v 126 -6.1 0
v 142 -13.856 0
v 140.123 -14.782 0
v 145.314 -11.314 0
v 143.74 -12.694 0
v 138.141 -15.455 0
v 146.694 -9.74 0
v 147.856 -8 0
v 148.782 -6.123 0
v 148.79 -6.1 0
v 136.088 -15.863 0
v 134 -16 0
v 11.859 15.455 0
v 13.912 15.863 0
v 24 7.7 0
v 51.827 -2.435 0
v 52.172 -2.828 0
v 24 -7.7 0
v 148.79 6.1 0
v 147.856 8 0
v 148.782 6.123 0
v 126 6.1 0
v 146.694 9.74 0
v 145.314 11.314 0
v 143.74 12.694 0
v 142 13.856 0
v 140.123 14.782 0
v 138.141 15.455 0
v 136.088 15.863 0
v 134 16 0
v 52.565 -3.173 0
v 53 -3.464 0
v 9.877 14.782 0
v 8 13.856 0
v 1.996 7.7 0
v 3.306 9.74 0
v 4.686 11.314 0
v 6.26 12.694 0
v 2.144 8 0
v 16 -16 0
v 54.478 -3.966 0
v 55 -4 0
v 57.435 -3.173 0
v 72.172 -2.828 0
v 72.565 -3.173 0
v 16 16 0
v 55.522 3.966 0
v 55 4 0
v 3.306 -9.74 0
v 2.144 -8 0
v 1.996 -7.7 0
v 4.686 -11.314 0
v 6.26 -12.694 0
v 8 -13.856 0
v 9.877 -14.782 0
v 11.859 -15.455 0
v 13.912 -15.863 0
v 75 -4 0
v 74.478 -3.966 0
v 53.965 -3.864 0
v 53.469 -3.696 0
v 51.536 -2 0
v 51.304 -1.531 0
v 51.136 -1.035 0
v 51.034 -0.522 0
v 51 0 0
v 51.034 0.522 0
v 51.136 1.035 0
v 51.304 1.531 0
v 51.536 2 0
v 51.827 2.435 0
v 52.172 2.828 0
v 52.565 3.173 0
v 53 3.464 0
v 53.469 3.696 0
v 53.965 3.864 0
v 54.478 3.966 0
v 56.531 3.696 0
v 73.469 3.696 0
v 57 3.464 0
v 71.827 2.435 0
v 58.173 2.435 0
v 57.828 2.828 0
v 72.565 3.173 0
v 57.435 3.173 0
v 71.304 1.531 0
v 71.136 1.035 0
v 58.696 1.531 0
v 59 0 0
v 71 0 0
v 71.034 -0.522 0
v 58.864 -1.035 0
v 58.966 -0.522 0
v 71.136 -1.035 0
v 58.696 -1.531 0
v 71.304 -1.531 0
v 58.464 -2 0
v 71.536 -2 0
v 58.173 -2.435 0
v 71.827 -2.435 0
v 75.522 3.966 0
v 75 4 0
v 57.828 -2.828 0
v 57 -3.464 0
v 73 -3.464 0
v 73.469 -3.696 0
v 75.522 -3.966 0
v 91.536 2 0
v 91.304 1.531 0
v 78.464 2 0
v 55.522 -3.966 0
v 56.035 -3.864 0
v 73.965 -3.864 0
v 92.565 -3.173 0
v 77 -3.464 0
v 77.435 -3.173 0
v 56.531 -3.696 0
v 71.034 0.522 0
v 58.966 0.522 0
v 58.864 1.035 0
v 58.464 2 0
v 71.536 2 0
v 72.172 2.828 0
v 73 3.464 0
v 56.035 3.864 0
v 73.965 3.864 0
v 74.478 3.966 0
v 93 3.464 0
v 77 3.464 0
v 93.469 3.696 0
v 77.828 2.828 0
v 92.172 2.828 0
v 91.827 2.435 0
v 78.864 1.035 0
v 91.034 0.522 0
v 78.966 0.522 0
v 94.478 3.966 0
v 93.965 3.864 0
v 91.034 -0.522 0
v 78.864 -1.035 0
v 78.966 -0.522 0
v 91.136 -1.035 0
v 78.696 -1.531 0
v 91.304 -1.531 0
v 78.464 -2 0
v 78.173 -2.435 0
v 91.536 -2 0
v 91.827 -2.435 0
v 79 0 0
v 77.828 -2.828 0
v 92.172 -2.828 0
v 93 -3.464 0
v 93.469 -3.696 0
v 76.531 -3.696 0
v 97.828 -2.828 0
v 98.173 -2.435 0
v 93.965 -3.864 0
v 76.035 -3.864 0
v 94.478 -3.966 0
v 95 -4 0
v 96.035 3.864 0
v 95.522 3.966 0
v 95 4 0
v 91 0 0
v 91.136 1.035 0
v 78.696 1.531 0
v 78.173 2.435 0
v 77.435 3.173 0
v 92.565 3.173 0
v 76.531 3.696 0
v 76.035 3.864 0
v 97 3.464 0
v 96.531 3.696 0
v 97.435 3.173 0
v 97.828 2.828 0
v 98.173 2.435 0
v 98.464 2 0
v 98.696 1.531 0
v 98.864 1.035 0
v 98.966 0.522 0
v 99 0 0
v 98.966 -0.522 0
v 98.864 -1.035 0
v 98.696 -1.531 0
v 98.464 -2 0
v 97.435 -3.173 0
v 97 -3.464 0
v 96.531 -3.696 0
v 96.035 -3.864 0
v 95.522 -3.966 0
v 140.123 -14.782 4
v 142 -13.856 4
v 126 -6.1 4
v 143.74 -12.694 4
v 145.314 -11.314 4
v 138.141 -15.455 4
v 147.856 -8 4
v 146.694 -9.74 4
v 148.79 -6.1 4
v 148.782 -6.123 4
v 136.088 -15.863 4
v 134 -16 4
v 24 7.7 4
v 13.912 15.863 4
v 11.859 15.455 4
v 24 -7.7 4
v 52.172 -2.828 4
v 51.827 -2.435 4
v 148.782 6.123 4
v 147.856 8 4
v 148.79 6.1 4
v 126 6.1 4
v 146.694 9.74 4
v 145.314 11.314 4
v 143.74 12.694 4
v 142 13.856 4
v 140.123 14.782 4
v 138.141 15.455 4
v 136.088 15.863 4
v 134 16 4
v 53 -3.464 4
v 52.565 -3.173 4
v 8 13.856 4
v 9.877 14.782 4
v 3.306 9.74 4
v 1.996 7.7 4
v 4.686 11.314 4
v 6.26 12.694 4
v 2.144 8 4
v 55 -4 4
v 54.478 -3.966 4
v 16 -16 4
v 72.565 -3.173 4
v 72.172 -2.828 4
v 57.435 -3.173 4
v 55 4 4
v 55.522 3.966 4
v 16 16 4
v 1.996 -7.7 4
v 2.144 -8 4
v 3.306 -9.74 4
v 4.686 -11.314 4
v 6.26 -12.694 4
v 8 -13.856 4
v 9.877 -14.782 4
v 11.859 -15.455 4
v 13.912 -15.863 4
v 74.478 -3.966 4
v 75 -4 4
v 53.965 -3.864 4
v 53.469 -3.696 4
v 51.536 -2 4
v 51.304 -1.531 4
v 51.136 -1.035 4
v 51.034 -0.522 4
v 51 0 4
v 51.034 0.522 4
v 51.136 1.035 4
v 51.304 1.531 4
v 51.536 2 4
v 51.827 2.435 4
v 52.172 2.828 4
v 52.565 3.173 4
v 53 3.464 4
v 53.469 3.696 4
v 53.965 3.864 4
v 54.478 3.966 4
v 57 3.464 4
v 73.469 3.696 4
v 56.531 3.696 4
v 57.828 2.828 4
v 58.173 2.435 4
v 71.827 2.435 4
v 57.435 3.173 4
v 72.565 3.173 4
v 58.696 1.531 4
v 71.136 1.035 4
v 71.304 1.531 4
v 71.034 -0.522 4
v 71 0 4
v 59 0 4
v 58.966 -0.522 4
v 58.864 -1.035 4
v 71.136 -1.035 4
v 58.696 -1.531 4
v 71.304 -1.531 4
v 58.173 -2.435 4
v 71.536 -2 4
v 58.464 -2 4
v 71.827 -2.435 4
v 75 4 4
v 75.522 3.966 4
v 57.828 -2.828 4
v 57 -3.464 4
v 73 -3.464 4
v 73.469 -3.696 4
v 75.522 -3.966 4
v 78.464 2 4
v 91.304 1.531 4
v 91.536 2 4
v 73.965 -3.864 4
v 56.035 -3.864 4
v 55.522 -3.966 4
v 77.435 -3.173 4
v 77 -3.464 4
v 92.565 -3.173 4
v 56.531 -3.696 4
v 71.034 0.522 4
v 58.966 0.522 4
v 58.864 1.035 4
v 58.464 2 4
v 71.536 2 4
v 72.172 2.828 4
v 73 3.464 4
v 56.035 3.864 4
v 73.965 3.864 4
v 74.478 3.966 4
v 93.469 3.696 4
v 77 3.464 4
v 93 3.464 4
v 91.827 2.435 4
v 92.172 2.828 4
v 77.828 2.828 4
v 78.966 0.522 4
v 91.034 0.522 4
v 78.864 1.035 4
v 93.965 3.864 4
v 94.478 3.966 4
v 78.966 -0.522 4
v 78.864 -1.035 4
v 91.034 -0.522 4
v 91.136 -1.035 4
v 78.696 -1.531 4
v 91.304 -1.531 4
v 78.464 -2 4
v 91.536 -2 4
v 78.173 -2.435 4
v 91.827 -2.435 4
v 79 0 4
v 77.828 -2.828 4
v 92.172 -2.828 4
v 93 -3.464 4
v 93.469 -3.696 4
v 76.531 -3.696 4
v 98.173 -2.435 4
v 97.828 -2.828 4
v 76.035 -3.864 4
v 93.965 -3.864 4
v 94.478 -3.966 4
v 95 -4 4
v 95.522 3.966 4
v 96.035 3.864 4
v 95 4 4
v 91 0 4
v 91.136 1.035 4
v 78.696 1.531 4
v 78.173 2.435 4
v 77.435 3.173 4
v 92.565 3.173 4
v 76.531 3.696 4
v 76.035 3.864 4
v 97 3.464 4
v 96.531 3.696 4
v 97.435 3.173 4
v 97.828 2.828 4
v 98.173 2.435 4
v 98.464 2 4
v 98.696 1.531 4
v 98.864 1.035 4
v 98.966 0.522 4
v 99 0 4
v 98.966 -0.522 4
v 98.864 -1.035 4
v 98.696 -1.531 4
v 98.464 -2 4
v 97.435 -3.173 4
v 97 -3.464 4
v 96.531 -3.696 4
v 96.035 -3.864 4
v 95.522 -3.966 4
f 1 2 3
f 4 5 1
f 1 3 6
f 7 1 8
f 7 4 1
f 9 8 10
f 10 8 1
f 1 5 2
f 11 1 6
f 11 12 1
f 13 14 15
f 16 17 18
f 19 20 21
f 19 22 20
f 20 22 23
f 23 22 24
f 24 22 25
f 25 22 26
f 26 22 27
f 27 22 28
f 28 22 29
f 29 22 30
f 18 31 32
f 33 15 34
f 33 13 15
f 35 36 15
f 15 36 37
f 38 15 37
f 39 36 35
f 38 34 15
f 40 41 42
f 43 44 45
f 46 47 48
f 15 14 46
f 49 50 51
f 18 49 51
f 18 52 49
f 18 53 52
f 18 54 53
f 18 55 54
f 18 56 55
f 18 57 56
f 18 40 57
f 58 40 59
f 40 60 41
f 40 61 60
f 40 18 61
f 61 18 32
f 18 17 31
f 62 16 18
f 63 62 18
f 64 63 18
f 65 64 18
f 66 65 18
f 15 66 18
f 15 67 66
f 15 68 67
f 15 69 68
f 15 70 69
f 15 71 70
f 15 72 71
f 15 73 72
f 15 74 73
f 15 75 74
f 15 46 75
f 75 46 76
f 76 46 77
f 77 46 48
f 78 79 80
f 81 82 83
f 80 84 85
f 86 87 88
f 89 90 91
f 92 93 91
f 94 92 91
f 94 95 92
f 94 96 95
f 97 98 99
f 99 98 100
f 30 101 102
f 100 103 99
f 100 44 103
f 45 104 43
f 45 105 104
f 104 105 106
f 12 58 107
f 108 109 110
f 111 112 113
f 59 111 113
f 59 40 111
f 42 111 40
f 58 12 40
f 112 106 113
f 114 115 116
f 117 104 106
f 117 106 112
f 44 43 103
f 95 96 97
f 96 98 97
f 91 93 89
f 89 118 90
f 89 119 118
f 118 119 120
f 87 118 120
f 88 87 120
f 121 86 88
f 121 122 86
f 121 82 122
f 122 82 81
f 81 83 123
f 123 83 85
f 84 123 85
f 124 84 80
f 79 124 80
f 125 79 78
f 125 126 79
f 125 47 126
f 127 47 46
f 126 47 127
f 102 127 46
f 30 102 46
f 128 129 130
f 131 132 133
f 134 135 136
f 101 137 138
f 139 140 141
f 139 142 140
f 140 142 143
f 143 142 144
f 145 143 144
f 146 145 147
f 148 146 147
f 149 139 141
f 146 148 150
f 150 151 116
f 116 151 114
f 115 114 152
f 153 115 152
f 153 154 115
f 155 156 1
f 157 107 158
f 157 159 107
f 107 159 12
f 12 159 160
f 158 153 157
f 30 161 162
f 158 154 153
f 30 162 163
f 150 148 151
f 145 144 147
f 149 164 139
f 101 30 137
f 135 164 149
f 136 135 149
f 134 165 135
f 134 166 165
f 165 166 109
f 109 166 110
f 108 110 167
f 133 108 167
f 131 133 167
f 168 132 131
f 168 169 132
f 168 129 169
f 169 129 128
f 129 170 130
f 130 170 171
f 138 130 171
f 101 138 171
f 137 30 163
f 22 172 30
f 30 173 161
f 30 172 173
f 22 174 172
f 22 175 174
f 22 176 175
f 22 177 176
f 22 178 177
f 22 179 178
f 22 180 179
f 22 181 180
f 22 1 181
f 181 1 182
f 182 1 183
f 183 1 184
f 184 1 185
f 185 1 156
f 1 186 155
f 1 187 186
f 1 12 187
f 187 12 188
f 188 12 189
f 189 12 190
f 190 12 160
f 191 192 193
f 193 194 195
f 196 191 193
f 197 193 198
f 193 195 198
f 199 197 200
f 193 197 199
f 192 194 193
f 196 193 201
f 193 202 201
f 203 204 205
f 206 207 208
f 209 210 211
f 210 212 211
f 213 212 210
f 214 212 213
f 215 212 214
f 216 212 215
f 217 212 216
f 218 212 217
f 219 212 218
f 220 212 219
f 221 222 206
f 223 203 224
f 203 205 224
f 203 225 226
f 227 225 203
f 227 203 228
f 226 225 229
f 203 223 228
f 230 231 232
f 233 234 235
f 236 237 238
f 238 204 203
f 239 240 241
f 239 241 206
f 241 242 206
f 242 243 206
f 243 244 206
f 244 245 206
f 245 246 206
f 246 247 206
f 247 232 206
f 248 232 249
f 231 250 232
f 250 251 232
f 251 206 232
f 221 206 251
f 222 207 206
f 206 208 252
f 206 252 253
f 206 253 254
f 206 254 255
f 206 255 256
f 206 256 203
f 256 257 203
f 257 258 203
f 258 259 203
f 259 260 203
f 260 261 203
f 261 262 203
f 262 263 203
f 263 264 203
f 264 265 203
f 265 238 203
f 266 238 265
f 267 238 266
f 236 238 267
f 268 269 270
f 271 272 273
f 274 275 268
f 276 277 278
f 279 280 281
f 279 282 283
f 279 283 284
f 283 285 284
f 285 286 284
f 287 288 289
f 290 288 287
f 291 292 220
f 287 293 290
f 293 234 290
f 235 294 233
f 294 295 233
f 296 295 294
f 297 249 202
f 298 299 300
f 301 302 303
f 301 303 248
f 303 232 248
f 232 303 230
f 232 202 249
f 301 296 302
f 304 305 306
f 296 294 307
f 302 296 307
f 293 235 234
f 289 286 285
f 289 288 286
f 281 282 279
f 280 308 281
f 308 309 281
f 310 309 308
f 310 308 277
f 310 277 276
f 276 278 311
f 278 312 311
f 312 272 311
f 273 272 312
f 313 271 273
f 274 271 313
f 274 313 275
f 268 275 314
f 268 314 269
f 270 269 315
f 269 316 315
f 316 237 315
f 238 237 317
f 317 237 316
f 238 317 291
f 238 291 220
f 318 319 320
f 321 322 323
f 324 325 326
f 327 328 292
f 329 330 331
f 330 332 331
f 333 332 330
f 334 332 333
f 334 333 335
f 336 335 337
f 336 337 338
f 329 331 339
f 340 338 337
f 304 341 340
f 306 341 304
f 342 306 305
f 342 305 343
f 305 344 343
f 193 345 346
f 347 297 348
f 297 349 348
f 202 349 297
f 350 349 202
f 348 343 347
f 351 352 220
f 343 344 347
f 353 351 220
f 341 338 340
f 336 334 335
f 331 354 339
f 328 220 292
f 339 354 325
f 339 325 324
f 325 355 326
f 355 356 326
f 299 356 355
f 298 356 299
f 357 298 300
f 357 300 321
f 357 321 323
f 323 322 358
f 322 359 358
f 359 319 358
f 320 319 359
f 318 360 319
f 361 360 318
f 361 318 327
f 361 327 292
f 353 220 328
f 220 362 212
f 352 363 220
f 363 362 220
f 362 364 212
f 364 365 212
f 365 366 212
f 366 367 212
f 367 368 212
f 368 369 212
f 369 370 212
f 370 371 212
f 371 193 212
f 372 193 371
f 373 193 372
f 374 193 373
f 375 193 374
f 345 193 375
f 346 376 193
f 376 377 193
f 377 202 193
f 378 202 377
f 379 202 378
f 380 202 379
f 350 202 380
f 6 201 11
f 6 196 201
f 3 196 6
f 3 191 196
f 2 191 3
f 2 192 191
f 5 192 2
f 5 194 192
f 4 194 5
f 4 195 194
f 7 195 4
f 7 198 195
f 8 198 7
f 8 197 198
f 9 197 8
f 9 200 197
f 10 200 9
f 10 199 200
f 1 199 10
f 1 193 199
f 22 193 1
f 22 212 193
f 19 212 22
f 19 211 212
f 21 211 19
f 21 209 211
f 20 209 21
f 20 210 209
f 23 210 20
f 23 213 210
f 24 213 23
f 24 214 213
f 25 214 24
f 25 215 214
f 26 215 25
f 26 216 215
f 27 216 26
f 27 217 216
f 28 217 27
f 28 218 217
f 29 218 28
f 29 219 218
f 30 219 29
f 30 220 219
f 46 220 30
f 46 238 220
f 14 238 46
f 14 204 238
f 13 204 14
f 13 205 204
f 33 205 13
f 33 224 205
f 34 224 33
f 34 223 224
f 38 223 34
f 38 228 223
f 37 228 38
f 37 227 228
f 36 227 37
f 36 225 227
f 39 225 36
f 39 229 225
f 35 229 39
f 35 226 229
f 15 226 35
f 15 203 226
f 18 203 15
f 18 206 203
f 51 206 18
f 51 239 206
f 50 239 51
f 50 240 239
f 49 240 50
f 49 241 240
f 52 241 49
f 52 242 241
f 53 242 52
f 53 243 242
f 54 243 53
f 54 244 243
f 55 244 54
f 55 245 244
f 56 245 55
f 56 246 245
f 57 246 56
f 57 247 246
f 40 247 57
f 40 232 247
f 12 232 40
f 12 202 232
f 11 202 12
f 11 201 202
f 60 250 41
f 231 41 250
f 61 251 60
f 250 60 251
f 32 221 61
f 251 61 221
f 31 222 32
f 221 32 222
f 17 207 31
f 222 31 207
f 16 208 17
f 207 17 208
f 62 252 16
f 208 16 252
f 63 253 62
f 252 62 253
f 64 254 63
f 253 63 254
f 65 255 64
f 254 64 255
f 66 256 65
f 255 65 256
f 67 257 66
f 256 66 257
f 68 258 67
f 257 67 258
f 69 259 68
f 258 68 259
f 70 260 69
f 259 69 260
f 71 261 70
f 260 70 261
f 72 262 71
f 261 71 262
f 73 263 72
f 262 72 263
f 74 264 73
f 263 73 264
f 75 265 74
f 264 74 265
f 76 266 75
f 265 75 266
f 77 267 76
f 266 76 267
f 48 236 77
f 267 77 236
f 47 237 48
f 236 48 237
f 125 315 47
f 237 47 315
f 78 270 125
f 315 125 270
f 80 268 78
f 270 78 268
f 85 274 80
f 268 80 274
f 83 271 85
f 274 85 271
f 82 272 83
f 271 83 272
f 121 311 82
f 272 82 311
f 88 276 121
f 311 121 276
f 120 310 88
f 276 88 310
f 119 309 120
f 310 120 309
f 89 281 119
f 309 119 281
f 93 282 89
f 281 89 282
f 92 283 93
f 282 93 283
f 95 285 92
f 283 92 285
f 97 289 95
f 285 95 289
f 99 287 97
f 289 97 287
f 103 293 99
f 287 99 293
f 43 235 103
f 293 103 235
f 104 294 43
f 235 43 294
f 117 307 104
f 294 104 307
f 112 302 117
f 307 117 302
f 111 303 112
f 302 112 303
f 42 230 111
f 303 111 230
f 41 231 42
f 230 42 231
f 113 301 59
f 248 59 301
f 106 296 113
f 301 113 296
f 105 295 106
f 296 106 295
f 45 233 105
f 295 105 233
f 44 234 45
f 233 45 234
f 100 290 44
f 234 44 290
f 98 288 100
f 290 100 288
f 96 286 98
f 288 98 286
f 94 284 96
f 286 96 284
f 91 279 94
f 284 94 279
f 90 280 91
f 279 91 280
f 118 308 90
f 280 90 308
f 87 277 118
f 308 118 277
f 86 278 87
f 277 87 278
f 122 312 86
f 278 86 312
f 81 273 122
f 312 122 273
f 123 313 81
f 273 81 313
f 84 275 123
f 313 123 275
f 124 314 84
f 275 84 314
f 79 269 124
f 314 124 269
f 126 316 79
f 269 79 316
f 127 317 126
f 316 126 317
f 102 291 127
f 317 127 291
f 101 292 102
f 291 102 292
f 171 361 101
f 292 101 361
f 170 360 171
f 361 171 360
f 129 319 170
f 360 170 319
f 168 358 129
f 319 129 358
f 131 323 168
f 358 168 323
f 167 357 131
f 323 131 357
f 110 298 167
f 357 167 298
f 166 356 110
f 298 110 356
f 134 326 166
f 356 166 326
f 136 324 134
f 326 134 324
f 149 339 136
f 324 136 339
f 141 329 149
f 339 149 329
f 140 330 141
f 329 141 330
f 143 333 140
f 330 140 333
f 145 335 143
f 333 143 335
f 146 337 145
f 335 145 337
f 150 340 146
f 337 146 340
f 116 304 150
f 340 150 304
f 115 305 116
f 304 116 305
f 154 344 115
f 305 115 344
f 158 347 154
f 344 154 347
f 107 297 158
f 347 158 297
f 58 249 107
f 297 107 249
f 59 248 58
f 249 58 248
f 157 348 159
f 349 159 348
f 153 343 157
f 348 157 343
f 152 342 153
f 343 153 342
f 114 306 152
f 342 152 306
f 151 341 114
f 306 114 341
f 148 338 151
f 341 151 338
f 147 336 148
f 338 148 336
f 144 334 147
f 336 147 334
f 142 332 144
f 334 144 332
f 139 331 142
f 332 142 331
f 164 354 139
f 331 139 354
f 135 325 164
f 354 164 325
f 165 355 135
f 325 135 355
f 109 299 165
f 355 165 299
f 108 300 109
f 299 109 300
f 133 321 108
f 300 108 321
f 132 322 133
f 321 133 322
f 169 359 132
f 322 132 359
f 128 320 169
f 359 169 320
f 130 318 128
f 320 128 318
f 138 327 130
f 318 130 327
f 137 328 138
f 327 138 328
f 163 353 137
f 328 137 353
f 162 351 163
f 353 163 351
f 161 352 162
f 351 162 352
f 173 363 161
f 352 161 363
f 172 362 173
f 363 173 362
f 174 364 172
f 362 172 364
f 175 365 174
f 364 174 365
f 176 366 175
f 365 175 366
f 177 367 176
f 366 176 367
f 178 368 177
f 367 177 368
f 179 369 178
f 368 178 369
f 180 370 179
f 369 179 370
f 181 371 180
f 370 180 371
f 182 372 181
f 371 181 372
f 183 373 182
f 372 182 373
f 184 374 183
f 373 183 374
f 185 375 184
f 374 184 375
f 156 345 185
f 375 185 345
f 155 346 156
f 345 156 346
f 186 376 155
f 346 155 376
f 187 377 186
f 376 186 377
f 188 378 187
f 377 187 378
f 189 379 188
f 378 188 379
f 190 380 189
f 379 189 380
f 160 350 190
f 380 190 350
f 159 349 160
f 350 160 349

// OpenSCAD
// MC4 spanner — the plastic wrench that unlocks solar connectors.
// Two open ends: coupling-nut flats and locknut flats. Measure your actual
// connectors across the flats and set slot_a/slot_b (brands differ a little).
// Print flat, PETG/ASA, 5 perimeters, 40% infill. Print two; give one away.

$fn = 48;

len        = 150;
wid        = 32;
th         = 4;
slot_a     = 15.4;   // MC4 coupling nut across flats — verify
slot_b     = 12.2;   // MC4 locknut across flats — verify
slot_depth = 24;

linear_extrude(th)
    difference() {
        hull() {
            translate([wid/2, 0])       circle(d = wid);
            translate([len - wid/2, 0]) circle(d = wid);
        }
        translate([-1, -slot_a/2])               square([slot_depth + 1, slot_a]);
        translate([len - slot_depth, -slot_b/2]) square([slot_depth + 1, slot_b]);
        for (x = [55, 75, 95]) translate([x, 0]) circle(d = 8);  // grip + lanyard
    }
